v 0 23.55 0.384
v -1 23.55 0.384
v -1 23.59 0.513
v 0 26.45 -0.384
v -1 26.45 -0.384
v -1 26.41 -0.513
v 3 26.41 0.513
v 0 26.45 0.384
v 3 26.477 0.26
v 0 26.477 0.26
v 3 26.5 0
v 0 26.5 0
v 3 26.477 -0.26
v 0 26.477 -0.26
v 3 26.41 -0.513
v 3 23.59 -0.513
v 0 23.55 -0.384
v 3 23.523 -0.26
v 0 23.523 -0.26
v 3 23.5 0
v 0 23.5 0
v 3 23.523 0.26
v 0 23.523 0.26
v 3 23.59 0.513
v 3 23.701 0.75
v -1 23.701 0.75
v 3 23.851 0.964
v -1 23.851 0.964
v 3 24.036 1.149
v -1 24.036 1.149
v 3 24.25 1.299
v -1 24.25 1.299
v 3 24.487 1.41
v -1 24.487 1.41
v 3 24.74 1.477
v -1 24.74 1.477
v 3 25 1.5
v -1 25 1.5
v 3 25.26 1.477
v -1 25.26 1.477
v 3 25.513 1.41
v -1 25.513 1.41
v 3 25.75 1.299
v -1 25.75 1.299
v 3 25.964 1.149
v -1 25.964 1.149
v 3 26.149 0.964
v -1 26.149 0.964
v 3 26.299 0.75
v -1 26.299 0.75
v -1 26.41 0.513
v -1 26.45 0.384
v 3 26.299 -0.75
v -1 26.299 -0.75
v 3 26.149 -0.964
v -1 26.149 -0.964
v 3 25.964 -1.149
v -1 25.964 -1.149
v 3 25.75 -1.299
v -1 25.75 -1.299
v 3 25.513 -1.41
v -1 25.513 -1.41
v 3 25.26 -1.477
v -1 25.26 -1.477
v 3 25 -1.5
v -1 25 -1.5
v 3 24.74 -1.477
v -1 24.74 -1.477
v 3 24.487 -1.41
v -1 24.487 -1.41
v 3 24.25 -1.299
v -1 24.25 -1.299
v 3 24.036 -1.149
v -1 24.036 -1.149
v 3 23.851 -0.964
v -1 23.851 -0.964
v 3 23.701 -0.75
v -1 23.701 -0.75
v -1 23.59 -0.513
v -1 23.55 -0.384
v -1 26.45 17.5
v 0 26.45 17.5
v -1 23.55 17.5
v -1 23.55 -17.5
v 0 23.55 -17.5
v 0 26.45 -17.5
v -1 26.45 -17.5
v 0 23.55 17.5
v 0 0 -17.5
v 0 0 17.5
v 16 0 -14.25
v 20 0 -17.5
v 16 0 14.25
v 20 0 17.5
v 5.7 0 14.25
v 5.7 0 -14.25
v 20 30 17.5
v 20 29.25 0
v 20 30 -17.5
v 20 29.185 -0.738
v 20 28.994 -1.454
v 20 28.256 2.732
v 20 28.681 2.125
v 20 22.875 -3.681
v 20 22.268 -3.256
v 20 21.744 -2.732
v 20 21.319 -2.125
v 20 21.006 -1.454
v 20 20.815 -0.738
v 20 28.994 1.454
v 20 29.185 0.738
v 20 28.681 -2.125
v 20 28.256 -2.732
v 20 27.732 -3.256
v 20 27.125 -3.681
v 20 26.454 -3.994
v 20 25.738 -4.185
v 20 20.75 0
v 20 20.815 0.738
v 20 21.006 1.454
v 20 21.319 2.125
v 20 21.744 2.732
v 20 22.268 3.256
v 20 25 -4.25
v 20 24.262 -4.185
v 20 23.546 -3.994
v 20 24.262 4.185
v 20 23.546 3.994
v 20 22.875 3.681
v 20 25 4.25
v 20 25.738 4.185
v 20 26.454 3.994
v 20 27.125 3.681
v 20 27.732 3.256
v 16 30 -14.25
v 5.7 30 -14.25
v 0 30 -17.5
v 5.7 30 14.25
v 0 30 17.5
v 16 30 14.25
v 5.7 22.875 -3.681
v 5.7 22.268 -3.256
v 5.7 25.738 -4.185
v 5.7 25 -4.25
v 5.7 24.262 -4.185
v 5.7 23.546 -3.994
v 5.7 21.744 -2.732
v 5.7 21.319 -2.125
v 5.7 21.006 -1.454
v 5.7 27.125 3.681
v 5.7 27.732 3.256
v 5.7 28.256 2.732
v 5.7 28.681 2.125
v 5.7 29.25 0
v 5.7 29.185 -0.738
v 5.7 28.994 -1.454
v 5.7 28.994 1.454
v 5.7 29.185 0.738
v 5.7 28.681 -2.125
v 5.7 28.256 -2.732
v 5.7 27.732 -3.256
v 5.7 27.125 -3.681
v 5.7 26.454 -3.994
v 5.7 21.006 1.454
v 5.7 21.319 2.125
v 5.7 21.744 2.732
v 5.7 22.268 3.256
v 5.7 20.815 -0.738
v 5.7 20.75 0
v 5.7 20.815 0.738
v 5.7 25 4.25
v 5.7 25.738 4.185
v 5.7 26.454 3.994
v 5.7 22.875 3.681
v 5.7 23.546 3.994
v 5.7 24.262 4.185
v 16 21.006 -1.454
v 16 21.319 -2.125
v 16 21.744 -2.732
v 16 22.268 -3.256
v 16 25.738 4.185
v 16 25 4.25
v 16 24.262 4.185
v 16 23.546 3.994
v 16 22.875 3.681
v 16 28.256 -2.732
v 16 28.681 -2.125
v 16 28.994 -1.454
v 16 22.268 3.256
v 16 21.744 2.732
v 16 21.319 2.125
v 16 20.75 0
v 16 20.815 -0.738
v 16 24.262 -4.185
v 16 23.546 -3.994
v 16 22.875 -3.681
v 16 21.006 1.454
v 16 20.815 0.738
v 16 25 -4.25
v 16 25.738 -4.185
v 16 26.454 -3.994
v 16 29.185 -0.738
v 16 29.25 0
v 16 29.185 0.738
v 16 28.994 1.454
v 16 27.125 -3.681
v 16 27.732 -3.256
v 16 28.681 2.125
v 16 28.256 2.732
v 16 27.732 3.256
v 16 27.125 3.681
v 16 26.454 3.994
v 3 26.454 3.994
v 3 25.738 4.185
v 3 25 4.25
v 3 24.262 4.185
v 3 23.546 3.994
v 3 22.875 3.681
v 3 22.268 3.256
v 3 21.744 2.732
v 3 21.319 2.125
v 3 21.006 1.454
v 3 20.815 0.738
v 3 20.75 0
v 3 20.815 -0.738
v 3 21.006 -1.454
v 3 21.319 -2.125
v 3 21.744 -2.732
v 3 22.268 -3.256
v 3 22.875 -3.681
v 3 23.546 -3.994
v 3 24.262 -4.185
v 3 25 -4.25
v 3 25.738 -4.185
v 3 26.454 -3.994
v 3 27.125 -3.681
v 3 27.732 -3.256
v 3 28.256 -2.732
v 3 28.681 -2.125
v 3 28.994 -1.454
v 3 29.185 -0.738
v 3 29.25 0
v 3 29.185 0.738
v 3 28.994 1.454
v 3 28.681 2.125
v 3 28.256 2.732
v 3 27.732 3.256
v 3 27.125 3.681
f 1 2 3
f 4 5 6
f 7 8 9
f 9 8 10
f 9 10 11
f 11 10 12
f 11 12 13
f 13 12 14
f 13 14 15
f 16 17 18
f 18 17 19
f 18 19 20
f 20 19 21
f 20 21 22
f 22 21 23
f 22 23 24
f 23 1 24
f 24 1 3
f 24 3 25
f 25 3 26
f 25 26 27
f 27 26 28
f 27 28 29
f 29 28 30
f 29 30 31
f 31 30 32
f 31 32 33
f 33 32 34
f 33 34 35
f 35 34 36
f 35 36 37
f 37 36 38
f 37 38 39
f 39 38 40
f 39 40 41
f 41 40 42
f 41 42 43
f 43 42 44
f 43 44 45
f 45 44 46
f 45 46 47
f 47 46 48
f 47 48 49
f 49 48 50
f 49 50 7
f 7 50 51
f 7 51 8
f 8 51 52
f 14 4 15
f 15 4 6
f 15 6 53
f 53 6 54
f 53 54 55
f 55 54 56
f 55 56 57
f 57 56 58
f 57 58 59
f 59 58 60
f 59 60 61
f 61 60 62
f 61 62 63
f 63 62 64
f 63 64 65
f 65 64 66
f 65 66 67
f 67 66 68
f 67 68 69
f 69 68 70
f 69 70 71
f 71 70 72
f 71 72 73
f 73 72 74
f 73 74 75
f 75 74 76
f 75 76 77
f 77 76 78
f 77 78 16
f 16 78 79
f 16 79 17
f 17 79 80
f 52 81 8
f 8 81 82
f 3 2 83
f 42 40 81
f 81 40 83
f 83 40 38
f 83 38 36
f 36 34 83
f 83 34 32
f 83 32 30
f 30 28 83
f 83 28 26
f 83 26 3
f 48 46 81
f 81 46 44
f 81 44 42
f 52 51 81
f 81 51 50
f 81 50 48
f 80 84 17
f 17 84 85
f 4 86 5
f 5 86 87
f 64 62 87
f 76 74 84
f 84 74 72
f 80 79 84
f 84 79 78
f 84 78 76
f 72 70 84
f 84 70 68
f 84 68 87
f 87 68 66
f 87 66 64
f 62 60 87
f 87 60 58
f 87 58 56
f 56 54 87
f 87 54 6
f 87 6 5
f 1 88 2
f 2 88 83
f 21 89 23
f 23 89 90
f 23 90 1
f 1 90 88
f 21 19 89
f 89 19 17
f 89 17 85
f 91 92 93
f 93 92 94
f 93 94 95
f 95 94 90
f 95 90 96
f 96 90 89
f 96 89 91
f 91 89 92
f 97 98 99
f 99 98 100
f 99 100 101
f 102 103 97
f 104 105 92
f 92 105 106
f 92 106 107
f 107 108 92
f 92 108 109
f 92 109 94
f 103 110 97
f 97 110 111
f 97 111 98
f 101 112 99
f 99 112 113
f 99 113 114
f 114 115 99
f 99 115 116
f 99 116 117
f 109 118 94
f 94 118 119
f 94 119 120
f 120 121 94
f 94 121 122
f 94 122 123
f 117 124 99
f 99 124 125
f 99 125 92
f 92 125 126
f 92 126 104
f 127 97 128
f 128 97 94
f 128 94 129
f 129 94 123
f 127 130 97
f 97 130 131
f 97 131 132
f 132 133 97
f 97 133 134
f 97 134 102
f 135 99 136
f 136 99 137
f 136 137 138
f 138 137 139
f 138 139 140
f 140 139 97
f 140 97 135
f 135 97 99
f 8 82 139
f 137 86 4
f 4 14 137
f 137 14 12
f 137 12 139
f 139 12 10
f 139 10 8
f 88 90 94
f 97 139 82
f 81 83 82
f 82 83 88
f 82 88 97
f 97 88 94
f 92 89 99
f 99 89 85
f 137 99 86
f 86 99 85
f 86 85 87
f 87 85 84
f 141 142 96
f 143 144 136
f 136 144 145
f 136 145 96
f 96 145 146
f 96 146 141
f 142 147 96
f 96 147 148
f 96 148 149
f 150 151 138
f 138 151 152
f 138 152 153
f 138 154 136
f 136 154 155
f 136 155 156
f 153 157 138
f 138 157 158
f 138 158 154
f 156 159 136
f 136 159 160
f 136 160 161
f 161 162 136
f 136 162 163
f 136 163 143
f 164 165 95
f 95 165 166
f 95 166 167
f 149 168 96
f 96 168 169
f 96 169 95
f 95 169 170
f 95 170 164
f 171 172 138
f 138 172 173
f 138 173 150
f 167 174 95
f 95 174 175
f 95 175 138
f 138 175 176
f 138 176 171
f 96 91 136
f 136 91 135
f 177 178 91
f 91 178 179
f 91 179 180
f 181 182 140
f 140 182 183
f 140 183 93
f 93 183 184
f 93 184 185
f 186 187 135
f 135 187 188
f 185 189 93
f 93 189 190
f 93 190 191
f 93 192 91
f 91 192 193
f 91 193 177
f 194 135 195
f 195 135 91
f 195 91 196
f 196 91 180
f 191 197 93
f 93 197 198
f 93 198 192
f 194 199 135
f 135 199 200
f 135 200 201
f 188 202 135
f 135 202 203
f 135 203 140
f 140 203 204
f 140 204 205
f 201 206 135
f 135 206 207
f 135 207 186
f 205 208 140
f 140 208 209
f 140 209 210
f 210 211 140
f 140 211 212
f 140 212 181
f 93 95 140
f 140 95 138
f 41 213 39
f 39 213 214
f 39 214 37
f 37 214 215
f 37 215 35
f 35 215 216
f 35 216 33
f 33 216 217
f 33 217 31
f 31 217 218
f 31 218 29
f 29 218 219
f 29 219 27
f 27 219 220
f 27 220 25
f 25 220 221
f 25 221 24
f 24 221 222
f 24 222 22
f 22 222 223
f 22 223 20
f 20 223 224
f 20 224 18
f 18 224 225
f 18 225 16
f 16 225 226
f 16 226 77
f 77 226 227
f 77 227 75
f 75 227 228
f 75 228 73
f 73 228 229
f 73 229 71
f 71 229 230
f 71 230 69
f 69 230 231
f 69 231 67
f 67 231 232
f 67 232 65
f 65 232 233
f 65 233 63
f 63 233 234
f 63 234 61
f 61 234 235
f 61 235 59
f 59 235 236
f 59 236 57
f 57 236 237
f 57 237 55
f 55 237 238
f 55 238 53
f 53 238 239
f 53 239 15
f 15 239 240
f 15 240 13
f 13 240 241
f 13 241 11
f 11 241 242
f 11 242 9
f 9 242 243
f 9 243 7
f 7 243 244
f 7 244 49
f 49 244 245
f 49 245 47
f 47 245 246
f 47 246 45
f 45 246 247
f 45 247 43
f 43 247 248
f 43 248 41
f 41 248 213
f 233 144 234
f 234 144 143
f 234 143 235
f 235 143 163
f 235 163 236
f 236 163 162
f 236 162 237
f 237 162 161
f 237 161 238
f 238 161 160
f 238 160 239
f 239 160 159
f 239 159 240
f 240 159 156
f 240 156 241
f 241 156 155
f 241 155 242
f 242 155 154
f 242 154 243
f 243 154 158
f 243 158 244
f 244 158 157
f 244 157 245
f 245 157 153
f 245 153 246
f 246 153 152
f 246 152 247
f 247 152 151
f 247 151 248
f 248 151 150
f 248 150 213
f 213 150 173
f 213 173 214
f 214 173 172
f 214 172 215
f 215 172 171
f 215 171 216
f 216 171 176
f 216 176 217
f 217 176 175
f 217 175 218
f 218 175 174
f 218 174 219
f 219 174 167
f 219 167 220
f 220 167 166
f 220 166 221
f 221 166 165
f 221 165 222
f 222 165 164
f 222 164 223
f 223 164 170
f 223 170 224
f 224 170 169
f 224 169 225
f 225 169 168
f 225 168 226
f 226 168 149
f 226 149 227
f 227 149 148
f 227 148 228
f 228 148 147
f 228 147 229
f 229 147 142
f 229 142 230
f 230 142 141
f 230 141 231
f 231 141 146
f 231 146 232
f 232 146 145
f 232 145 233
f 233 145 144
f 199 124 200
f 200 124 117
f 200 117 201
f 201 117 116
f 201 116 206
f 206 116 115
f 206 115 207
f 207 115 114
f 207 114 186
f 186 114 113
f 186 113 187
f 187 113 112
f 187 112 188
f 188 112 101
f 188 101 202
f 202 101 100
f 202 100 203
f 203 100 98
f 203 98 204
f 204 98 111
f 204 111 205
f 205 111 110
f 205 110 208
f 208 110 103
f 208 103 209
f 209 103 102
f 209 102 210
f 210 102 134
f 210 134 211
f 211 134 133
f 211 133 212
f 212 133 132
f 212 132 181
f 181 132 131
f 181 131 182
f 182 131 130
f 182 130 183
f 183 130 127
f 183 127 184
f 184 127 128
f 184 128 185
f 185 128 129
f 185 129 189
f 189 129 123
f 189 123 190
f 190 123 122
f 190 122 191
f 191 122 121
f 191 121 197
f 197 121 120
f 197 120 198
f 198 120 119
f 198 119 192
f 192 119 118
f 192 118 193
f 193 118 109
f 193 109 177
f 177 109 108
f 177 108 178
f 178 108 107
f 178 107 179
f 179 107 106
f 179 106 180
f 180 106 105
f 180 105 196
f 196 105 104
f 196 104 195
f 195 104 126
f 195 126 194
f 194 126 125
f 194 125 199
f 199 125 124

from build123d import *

# Parameters (mm, degrees)
MAIN_DEPTH             = 17.5
SKETCH2_W              = 10.3
SKETCH2_H              = 28.5
HOLEFORSWITCH_DEPTH    = 31
SKETCH4_R              = 1.5
MAKERBEAMFIXHOLE_DEPTH = 22
HOLEFORTOOL_START      = -17
SKETCH5_R              = 4.25
HOLEFORTOOL_DEPTH      = 17


with BuildPart() as part:
    # Sketch1 → Main (new body, symmetric)
    with BuildSketch(Plane.XY):
        Polygon((-1, 26.45), (-1, 23.55), (0, 23.55), (0, 0), (20, 0), (20, 30), (0, 30), (0, 26.45), align=None)
    extrude(amount=MAIN_DEPTH, both=True)

    # Sketch2 → HoleForSwitch (cut, through all)
    with BuildSketch(Plane(origin=(0, 30, 0), x_dir=(1, 0, 0), z_dir=(0, 1, 0))):
        with Locations((10.85, 0)):
            Rectangle(SKETCH2_W, SKETCH2_H)
    extrude(amount=-HOLEFORSWITCH_DEPTH, mode=Mode.SUBTRACT)

    # Sketch4 → MakerBeamFixHole (cut, through all)
    with BuildSketch(Plane.ZY.offset(1)):
        with Locations((0, 25)):
            Circle(SKETCH4_R)
    extrude(amount=-MAKERBEAMFIXHOLE_DEPTH, mode=Mode.SUBTRACT)

    # Sketch5 → HoleForTool (cut)
    with BuildSketch(Plane(origin=(20, 0, 0), x_dir=(0, 0, -1), z_dir=(1, 0, 0)).offset(HOLEFORTOOL_START)):
        with Locations((0, 25)):
            Circle(SKETCH5_R)
    extrude(amount=HOLEFORTOOL_DEPTH, mode=Mode.SUBTRACT)


solid = part.part
